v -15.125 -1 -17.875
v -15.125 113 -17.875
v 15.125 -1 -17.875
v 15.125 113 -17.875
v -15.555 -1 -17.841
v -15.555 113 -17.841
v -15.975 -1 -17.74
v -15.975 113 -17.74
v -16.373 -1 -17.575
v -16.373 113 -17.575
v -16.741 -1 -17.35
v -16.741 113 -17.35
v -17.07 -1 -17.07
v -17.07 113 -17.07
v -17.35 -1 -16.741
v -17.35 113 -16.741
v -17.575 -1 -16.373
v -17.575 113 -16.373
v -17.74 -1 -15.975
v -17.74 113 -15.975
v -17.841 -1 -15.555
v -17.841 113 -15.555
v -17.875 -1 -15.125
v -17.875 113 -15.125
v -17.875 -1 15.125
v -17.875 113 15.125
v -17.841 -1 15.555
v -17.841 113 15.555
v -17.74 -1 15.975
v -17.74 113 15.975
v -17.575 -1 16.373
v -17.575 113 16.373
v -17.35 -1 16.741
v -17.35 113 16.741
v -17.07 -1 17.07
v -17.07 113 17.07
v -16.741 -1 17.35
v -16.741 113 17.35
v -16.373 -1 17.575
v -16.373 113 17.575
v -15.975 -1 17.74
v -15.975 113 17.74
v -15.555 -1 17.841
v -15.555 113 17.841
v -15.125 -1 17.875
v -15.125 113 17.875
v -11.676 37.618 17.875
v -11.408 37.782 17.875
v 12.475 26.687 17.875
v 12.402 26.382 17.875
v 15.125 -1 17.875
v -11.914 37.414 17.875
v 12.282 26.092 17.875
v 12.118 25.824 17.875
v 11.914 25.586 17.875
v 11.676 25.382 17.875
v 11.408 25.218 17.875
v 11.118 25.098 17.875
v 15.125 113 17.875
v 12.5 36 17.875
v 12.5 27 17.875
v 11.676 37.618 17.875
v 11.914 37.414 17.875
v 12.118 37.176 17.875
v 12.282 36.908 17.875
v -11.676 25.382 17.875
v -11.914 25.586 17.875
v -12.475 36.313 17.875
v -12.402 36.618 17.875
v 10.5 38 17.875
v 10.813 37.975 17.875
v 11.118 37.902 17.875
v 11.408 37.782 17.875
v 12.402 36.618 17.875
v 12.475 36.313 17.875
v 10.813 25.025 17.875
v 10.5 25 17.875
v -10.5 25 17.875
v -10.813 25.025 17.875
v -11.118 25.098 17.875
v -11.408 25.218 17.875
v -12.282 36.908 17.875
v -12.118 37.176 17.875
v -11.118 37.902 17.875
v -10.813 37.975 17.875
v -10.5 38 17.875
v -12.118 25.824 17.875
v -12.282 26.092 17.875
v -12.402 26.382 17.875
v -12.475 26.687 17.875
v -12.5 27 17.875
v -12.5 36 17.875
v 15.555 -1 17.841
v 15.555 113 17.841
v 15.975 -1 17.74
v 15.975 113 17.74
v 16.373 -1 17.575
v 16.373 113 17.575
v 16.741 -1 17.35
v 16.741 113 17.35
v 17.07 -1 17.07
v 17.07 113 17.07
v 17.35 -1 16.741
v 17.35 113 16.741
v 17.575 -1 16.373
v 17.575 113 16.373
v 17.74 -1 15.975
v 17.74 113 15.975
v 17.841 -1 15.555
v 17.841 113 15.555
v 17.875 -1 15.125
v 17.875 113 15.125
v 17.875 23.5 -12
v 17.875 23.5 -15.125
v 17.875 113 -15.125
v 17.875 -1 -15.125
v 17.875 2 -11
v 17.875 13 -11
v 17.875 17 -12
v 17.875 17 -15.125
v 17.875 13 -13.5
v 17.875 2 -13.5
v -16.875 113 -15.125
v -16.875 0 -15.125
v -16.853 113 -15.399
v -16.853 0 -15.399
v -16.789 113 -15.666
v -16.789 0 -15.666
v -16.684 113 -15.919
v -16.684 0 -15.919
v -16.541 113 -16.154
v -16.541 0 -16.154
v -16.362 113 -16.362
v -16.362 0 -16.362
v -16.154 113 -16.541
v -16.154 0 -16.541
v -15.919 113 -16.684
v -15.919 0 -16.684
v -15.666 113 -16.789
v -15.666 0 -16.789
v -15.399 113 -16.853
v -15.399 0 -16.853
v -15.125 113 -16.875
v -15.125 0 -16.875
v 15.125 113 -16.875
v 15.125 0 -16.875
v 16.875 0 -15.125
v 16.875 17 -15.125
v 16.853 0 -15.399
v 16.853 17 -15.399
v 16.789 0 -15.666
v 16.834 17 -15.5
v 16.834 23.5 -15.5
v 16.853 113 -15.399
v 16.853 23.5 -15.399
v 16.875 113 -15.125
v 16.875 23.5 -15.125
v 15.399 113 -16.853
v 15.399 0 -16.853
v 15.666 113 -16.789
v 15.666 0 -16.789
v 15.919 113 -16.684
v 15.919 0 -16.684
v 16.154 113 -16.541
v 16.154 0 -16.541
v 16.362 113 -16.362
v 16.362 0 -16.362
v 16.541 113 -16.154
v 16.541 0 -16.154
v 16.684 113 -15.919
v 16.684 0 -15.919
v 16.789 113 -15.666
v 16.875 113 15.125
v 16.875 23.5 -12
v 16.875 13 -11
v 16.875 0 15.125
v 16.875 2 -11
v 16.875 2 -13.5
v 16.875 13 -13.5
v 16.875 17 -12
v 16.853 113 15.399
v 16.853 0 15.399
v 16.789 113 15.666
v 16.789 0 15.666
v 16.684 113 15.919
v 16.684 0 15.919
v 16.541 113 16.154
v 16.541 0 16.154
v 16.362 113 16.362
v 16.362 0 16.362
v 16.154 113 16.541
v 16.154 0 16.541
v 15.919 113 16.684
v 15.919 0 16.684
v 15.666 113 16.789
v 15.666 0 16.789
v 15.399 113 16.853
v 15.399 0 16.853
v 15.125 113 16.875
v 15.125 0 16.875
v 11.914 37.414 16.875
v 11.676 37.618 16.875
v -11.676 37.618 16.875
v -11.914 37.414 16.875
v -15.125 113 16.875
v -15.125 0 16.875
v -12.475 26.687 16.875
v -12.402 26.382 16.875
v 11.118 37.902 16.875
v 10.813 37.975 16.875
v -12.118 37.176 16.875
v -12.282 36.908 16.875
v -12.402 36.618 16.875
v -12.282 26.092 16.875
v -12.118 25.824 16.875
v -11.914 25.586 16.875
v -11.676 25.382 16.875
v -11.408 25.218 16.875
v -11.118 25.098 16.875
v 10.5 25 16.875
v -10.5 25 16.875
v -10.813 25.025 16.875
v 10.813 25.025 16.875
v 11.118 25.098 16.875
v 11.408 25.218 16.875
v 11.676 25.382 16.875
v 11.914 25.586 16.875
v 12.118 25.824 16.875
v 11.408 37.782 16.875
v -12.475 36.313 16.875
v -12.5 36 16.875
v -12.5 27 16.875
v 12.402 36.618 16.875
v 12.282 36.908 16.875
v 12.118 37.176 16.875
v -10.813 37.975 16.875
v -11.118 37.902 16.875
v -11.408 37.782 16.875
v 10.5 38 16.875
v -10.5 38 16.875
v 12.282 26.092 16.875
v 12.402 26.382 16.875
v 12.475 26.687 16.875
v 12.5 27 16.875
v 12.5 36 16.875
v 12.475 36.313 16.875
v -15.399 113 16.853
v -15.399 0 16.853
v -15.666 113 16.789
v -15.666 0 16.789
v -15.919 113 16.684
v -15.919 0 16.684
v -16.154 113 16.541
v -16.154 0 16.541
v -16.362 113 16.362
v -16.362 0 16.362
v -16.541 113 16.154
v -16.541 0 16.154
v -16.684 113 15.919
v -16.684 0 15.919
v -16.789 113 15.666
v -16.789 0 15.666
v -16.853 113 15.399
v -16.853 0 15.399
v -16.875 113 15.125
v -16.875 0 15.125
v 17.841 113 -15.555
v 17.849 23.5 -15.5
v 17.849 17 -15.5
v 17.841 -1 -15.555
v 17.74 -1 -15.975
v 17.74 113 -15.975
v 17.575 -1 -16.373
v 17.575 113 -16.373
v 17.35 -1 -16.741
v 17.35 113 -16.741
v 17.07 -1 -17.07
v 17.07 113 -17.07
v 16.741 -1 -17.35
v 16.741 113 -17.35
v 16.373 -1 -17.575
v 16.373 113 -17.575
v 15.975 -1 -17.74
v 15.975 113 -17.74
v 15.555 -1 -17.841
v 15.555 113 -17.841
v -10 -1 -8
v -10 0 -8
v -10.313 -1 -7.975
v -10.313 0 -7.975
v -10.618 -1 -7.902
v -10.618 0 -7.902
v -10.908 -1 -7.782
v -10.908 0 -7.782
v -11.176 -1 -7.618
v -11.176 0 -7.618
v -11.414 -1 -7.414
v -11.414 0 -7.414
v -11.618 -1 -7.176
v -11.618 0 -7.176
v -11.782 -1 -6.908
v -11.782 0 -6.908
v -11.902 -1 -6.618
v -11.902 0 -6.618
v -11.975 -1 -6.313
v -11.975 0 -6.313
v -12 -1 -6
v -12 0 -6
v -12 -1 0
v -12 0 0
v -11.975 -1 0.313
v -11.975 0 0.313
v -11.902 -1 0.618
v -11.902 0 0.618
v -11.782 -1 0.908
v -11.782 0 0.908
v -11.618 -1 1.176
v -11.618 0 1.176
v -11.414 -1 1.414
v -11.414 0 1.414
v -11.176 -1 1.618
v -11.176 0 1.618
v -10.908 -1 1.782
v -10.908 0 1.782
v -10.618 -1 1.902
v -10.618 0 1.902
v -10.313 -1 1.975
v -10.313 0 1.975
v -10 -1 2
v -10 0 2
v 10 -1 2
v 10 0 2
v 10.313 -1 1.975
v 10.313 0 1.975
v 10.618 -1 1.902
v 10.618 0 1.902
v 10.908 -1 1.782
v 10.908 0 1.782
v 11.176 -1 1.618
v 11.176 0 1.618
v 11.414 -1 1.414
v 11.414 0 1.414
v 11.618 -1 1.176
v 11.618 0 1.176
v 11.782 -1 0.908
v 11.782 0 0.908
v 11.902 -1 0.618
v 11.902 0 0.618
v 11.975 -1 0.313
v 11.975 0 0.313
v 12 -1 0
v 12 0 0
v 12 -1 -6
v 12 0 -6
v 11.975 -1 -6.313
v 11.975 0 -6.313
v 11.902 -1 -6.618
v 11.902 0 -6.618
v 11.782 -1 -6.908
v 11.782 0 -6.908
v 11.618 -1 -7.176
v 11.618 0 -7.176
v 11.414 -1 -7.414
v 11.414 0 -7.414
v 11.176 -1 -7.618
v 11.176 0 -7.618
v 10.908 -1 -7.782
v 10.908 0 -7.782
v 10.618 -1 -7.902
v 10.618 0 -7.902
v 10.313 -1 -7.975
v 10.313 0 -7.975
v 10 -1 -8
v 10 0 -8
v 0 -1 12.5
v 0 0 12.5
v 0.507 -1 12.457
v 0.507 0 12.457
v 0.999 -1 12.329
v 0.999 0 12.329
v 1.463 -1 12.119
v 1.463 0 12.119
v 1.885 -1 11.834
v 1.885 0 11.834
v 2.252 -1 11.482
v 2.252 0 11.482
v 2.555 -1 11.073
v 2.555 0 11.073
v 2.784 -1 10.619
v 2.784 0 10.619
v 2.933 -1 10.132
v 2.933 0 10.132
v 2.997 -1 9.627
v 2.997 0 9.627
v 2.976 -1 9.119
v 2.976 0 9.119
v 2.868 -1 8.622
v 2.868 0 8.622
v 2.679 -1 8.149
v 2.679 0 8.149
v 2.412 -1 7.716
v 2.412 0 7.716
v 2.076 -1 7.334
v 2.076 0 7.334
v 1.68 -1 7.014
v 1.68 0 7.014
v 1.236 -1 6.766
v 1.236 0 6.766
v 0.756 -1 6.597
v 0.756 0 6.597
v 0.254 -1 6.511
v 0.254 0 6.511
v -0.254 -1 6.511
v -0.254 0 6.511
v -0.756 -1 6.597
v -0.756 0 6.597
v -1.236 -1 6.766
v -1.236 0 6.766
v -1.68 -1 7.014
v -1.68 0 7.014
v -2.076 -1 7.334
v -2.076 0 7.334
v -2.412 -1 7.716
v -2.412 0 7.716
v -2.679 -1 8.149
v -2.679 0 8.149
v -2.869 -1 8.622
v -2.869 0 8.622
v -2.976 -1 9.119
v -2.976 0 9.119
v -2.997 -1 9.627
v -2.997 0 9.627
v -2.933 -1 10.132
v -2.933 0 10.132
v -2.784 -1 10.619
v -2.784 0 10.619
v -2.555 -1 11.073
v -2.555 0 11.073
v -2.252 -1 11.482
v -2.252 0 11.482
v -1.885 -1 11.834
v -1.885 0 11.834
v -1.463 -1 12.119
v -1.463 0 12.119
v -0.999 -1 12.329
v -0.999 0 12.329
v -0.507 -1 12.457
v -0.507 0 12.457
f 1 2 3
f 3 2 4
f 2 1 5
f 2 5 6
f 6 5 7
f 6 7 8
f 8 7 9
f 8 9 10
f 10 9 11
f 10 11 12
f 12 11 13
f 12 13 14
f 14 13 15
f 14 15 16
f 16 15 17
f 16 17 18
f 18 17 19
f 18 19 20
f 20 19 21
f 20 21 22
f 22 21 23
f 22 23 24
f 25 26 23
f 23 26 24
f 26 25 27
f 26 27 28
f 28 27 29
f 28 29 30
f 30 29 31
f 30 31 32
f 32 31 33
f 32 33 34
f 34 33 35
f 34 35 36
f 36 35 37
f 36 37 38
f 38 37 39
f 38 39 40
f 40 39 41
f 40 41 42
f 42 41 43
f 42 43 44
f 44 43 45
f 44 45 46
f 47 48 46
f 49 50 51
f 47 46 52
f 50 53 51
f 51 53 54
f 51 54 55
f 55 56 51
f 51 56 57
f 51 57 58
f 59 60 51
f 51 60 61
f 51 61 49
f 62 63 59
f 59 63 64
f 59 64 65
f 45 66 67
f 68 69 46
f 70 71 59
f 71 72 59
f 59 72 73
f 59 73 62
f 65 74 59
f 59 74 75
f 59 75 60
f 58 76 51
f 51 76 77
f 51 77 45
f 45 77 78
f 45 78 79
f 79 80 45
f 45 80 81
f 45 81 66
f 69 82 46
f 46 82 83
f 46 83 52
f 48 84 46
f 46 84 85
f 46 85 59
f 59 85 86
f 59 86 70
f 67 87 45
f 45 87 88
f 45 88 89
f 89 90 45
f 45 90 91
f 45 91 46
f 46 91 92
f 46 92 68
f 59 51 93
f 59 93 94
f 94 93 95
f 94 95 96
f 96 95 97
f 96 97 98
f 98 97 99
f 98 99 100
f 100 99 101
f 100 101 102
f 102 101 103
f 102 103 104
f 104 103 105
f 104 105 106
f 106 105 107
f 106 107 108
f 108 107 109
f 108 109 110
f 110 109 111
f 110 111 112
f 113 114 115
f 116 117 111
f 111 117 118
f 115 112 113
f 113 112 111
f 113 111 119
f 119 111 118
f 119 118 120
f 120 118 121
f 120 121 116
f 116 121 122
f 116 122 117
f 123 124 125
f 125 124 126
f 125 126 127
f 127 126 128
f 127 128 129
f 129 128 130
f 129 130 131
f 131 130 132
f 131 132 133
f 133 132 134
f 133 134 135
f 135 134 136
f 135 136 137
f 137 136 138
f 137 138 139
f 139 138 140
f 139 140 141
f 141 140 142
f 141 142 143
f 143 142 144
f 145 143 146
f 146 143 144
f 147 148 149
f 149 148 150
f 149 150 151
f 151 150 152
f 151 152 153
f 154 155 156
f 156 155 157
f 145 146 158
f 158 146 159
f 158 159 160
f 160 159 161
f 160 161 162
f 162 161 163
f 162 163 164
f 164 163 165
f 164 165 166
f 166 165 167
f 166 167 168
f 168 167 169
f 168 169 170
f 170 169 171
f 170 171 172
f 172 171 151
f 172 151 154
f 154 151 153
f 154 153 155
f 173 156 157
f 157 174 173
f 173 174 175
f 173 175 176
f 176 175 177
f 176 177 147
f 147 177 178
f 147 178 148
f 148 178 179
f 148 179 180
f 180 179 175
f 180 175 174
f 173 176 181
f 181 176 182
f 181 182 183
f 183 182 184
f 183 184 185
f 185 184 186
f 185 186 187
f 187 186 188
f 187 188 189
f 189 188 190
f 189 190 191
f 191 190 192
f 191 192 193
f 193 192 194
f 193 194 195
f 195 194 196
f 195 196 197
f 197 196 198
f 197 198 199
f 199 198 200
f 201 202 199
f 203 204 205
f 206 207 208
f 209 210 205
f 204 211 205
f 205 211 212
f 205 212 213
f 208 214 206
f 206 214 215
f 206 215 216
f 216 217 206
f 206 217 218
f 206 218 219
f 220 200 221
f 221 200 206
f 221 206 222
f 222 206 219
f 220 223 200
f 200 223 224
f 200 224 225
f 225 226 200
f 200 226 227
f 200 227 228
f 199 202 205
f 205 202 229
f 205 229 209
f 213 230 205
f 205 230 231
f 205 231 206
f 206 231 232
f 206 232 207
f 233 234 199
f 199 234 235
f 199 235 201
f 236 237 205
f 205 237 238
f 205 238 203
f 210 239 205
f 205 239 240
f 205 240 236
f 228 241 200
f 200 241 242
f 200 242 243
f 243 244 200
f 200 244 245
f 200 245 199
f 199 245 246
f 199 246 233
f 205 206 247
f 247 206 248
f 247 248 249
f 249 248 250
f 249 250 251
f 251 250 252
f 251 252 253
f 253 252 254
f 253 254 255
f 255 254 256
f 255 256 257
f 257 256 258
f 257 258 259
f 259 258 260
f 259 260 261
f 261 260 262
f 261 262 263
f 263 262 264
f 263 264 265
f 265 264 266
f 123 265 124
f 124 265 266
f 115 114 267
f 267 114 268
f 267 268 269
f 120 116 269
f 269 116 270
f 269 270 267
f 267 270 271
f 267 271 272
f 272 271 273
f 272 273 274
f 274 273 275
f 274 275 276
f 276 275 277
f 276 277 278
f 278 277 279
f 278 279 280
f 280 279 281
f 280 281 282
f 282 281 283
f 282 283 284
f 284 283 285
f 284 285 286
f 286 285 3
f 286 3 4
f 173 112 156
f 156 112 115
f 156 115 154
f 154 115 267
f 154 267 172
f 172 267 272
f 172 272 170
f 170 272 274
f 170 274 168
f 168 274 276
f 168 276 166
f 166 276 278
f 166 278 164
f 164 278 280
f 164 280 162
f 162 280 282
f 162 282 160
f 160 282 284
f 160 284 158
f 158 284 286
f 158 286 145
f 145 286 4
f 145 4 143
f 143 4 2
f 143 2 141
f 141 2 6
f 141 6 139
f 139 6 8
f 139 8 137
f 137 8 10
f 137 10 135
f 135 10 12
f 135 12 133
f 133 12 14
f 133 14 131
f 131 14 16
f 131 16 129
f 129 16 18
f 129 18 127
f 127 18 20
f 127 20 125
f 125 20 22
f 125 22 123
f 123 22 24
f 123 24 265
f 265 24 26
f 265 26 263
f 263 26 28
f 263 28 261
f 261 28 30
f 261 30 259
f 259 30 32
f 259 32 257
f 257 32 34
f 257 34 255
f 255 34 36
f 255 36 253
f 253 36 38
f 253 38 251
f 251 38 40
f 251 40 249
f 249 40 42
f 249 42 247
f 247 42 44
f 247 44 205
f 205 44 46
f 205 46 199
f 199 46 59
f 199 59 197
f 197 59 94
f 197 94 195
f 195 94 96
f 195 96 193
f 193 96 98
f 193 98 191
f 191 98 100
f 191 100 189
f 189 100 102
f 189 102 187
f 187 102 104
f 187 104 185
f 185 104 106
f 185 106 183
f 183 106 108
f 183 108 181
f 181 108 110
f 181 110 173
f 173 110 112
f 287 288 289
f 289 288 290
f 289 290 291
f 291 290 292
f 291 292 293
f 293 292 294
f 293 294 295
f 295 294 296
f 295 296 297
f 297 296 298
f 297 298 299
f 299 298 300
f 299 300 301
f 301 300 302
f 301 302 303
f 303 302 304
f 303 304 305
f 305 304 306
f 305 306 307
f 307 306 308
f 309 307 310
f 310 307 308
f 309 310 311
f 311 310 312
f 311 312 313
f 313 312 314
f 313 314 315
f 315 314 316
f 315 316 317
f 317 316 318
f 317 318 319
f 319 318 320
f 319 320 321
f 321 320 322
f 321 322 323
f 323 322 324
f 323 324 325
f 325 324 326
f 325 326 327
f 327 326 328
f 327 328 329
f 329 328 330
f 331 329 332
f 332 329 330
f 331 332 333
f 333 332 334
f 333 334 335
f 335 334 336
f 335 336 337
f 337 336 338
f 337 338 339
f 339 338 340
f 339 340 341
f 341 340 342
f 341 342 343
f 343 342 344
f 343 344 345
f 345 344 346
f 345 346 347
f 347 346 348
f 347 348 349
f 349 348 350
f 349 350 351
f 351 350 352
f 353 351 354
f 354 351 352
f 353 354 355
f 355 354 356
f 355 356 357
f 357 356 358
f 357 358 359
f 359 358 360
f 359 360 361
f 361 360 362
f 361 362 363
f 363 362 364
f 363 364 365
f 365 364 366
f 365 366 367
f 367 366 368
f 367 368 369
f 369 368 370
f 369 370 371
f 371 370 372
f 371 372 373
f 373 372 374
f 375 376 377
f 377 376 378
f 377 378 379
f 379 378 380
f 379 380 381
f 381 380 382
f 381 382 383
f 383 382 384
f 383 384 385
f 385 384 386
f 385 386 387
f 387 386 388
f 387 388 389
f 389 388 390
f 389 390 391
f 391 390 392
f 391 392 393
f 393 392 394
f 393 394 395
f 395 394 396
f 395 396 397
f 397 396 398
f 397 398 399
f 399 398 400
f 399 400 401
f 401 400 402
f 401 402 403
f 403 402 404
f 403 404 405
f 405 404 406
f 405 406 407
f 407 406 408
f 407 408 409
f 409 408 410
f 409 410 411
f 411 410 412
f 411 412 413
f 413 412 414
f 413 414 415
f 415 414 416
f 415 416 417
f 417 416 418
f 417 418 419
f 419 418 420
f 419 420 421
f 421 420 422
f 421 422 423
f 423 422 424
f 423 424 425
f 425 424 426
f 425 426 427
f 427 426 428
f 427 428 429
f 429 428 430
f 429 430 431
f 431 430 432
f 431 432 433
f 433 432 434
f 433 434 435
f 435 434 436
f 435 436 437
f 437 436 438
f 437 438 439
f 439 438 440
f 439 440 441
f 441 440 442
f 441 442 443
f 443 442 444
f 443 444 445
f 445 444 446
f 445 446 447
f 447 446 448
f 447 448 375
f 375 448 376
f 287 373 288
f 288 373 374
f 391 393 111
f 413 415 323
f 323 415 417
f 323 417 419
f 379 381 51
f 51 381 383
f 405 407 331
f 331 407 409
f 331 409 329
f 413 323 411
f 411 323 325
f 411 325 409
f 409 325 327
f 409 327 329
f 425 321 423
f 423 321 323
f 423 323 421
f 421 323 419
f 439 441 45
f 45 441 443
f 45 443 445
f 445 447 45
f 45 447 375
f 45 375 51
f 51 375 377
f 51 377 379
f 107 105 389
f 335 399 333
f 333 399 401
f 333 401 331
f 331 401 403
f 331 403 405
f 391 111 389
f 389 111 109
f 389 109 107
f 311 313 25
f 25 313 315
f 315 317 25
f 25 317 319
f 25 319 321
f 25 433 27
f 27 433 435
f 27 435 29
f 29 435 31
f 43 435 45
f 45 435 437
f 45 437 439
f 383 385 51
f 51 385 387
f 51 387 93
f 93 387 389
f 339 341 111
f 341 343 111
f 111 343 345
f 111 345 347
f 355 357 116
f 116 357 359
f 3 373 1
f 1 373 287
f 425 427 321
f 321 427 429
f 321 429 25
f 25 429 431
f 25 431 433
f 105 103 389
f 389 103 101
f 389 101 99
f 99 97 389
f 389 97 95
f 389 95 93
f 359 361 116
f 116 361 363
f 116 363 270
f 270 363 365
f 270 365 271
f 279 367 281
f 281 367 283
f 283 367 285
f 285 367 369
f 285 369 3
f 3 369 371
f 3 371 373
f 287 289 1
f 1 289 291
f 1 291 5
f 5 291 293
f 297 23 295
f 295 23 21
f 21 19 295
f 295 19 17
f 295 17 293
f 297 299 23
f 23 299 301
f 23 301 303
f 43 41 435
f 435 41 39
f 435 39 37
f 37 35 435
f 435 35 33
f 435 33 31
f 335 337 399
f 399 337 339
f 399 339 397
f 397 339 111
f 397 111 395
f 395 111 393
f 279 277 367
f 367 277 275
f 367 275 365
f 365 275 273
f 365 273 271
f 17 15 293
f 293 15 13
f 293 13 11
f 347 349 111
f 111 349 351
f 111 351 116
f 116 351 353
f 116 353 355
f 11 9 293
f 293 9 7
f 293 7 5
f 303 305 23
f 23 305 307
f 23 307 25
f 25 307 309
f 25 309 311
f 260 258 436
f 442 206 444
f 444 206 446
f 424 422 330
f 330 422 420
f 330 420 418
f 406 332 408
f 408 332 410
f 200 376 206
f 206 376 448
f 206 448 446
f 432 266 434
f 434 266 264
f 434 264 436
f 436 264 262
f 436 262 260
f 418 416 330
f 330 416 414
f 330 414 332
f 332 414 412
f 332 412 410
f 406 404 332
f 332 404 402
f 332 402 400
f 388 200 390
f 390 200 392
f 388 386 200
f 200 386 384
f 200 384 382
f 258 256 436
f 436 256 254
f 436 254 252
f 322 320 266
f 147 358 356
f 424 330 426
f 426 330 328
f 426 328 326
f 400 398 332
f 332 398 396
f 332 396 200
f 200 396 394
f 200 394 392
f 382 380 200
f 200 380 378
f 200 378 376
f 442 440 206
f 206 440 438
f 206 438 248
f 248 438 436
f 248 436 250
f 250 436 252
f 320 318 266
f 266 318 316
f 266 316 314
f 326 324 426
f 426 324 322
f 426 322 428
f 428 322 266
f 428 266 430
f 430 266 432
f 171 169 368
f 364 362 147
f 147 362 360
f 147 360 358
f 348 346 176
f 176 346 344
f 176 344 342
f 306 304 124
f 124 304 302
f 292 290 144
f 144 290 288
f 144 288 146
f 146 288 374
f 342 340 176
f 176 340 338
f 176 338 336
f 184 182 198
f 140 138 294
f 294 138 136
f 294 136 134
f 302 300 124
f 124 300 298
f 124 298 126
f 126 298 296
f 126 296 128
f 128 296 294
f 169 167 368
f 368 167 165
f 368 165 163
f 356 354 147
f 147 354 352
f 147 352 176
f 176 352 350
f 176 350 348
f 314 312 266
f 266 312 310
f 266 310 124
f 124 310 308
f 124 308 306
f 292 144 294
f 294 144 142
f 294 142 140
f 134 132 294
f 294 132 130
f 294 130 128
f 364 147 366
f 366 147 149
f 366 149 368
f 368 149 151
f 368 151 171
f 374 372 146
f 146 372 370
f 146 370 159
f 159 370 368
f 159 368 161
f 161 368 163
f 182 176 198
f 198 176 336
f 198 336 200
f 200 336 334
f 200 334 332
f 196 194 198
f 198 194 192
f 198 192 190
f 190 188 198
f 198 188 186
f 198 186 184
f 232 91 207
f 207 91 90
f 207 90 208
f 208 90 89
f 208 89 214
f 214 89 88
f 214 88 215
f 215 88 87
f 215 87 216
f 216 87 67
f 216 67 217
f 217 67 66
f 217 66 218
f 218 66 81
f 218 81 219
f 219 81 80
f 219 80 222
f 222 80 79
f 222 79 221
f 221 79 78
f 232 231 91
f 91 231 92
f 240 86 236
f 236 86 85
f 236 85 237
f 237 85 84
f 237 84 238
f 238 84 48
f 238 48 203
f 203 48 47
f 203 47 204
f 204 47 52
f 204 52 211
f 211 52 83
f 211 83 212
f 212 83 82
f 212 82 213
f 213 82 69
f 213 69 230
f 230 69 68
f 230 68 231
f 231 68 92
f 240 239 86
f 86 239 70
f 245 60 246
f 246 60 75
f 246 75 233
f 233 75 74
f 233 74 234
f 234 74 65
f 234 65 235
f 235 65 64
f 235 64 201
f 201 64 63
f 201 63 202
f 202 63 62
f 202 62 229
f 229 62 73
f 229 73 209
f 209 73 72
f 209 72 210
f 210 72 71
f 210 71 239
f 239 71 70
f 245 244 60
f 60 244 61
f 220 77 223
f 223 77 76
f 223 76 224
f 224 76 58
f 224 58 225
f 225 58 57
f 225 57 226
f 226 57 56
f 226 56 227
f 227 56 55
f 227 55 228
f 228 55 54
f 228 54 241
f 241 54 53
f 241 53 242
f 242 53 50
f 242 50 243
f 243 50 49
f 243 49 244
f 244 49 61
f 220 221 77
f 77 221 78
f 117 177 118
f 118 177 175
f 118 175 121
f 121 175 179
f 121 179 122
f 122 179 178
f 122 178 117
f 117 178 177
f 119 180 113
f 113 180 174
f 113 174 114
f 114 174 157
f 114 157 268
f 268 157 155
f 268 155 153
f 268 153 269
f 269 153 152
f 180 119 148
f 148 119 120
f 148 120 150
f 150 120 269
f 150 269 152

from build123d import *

# Parameters (mm, degrees)
AUFSATZ_LINEAR_AUSTRAGEN1_DEPTH = 113
AUFSATZ_LINEAR_START            = -1
SKIZZE1_4_R                     = 3
AUFSATZ_LINEAR_AUSTRAGEN2_DEPTH = 1
SCHNITT_LINEAR_AUSTRAGEN1_DEPTH = 1
SKIZZE3_W                       = 2.5
SKIZZE3_H                       = 11
SKIZZE3_W_2                     = 3.5
SKIZZE3_H_2                     = 6.5
SCHNITT_LINEAR_AUSTRAGEN2_DEPTH = 2


with BuildPart() as part:
    # Skizze1 → Aufsatz-Linear austragen1 (new body)
    with BuildSketch(Plane(origin=(0, 0, 0), x_dir=(1, 0, 0), z_dir=(0, 1, 0))):
        with BuildLine():
            Line((15.125, 17.875), (-15.125, 17.875))
            ThreePointArc((-15.125, 17.875), (-17.069543648, 17.069543648), (-17.875, 15.125))
            Line((-17.875, 15.125), (-17.875, -15.125))
            ThreePointArc((-17.875, -15.125), (-17.069543648, -17.069543648), (-15.125, -17.875))
            Line((-15.125, -17.875), (15.125, -17.875))
            ThreePointArc((15.125, -17.875), (17.069543648, -17.069543648), (17.875, -15.125))
            Line((17.875, -15.125), (17.875, 15.125))
            ThreePointArc((17.875, 15.125), (17.069543648, 17.069543648), (15.125, 17.875))
        make_face()
        with BuildLine():
            ThreePointArc((-16.875, 15.125), (-16.362436867, 16.362436867), (-15.125, 16.875))
            Line((-15.125, 16.875), (15.125, 16.875))
            ThreePointArc((15.125, 16.875), (16.362436867, 16.362436867), (16.875, 15.125))
            Line((16.875, 15.125), (16.875, 10))
            Line((16.875, 10), (16.875, -4))
            Line((16.875, -4), (16.875, -15.125))
            ThreePointArc((16.875, -15.125), (16.362436867, -16.362436867), (15.125, -16.875))
            Line((15.125, -16.875), (-15.125, -16.875))
            ThreePointArc((-15.125, -16.875), (-16.362436867, -16.362436867), (-16.875, -15.125))
            Line((-16.875, -15.125), (-16.875, -4))
            Line((-16.875, -4), (-16.875, 10))
            Line((-16.875, 10), (-16.875, 15.125))
        make_face(mode=Mode.SUBTRACT)
    extrude(amount=AUFSATZ_LINEAR_AUSTRAGEN1_DEPTH)

    # Skizze1<4> → Aufsatz-Linear austragen2 (add)
    with BuildSketch(Plane(origin=(0, 0, 0), x_dir=(1, 0, 0), z_dir=(0, 1, 0)).offset(AUFSATZ_LINEAR_START)):
        with BuildLine():
            Line((15.125, 17.875), (-15.125, 17.875))
            ThreePointArc((-15.125, 17.875), (-17.069543648, 17.069543648), (-17.875, 15.125))
            Line((-17.875, 15.125), (-17.875, -15.125))
            ThreePointArc((-17.875, -15.125), (-17.069543648, -17.069543648), (-15.125, -17.875))
            Line((-15.125, -17.875), (15.125, -17.875))
            ThreePointArc((15.125, -17.875), (17.069543648, -17.069543648), (17.875, -15.125))
            Line((17.875, -15.125), (17.875, 15.125))
            ThreePointArc((17.875, 15.125), (17.069543648, 17.069543648), (15.125, 17.875))
        make_face()
        with BuildLine():
            Line((12, 6), (12, 0))
            ThreePointArc((12, 0), (11.414213562, -1.414213562), (10, -2))
            Line((10, -2), (-10, -2))
            ThreePointArc((-10, -2), (-11.414213562, -1.414213562), (-12, 0))
            Line((-12, 0), (-12, 6))
            ThreePointArc((-12, 6), (-11.414213562, 7.414213562), (-10, 8))
            Line((-10, 8), (10, 8))
            ThreePointArc((10, 8), (11.414213562, 7.414213562), (12, 6))
        make_face(mode=Mode.SUBTRACT)
        with Locations((0, -9.5)):
            Circle(SKIZZE1_4_R, mode=Mode.SUBTRACT)
    extrude(amount=AUFSATZ_LINEAR_AUSTRAGEN2_DEPTH)

    # Skizze2 → Schnitt-Linear austragen1 (cut)
    with BuildSketch(Plane.XY.offset(17.875)):
        with BuildLine():
            Line((-10.5, 38), (10.5, 38))
            ThreePointArc((10.5, 38), (11.914213562, 37.414213562), (12.5, 36))
            Line((12.5, 36), (12.5, 27))
            ThreePointArc((12.5, 27), (11.914213562, 25.585786438), (10.5, 25))
            Line((10.5, 25), (-10.5, 25))
            ThreePointArc((-10.5, 25), (-11.914213562, 25.585786438), (-12.5, 27))
            Line((-12.5, 27), (-12.5, 36))
            ThreePointArc((-12.5, 36), (-11.914213562, 37.414213562), (-10.5, 38))
        make_face()
    extrude(amount=-SCHNITT_LINEAR_AUSTRAGEN1_DEPTH, mode=Mode.SUBTRACT)

    # Skizze3 → Schnitt-Linear austragen2 (cut)
    with BuildSketch(Plane(origin=(17.875, 0, 0), x_dir=(0, 0, -1), z_dir=(1, 0, 0))):
        with Locations((12.25, 7.5)):
            Rectangle(SKIZZE3_W, SKIZZE3_H)
        with Locations((13.75, 20.25)):
            Rectangle(SKIZZE3_W_2, SKIZZE3_H_2)
    extrude(amount=-SCHNITT_LINEAR_AUSTRAGEN2_DEPTH, mode=Mode.SUBTRACT)


solid = part.part
